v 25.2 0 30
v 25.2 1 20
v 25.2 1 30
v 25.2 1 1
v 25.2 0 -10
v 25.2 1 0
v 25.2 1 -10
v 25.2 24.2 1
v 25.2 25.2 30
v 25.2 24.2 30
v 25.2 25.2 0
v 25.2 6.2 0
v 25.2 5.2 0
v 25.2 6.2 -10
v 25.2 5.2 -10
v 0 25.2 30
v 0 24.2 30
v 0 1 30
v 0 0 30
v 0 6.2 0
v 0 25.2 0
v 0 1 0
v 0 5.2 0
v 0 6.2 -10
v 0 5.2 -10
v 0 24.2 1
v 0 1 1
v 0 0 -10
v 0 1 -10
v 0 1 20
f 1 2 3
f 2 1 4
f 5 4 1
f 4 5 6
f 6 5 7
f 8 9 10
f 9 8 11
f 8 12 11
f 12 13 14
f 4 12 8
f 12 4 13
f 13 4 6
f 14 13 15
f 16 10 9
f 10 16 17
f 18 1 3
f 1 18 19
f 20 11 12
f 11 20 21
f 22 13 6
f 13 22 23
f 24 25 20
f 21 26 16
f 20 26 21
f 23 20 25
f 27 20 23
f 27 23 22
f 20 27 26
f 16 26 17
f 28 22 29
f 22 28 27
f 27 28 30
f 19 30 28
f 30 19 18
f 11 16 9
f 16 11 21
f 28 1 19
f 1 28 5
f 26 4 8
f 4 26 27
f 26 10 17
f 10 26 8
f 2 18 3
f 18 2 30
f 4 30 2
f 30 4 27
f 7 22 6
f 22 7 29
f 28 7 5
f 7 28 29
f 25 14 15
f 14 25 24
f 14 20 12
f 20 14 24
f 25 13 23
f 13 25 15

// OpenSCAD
// Размеры
slot_width = 25.2; // Ширина паза
slot_height = 5;   // Высота ребра
wall_thickness = 1; // Толщина стенок

// Функция для паза
module slot() {
    difference() {
        // Внешний корпус паза
        cube([25.2,25.2,30]);

        // Внутренний вырез для ребра
        translate([-1, wall_thickness, 1]) 
        cube([25.2*3,25.2-2,30]);
        //cube([slot_width, slot_height, wall_thickness]);
    }
}

// Вызов функции для визуализации
slot();


        // Внешний корпус паза
        translate([0,0,-10]) cube([25.2,1,30]);
   
        translate([0,5.2,-10]) cube([25.2,1,10.9]);
